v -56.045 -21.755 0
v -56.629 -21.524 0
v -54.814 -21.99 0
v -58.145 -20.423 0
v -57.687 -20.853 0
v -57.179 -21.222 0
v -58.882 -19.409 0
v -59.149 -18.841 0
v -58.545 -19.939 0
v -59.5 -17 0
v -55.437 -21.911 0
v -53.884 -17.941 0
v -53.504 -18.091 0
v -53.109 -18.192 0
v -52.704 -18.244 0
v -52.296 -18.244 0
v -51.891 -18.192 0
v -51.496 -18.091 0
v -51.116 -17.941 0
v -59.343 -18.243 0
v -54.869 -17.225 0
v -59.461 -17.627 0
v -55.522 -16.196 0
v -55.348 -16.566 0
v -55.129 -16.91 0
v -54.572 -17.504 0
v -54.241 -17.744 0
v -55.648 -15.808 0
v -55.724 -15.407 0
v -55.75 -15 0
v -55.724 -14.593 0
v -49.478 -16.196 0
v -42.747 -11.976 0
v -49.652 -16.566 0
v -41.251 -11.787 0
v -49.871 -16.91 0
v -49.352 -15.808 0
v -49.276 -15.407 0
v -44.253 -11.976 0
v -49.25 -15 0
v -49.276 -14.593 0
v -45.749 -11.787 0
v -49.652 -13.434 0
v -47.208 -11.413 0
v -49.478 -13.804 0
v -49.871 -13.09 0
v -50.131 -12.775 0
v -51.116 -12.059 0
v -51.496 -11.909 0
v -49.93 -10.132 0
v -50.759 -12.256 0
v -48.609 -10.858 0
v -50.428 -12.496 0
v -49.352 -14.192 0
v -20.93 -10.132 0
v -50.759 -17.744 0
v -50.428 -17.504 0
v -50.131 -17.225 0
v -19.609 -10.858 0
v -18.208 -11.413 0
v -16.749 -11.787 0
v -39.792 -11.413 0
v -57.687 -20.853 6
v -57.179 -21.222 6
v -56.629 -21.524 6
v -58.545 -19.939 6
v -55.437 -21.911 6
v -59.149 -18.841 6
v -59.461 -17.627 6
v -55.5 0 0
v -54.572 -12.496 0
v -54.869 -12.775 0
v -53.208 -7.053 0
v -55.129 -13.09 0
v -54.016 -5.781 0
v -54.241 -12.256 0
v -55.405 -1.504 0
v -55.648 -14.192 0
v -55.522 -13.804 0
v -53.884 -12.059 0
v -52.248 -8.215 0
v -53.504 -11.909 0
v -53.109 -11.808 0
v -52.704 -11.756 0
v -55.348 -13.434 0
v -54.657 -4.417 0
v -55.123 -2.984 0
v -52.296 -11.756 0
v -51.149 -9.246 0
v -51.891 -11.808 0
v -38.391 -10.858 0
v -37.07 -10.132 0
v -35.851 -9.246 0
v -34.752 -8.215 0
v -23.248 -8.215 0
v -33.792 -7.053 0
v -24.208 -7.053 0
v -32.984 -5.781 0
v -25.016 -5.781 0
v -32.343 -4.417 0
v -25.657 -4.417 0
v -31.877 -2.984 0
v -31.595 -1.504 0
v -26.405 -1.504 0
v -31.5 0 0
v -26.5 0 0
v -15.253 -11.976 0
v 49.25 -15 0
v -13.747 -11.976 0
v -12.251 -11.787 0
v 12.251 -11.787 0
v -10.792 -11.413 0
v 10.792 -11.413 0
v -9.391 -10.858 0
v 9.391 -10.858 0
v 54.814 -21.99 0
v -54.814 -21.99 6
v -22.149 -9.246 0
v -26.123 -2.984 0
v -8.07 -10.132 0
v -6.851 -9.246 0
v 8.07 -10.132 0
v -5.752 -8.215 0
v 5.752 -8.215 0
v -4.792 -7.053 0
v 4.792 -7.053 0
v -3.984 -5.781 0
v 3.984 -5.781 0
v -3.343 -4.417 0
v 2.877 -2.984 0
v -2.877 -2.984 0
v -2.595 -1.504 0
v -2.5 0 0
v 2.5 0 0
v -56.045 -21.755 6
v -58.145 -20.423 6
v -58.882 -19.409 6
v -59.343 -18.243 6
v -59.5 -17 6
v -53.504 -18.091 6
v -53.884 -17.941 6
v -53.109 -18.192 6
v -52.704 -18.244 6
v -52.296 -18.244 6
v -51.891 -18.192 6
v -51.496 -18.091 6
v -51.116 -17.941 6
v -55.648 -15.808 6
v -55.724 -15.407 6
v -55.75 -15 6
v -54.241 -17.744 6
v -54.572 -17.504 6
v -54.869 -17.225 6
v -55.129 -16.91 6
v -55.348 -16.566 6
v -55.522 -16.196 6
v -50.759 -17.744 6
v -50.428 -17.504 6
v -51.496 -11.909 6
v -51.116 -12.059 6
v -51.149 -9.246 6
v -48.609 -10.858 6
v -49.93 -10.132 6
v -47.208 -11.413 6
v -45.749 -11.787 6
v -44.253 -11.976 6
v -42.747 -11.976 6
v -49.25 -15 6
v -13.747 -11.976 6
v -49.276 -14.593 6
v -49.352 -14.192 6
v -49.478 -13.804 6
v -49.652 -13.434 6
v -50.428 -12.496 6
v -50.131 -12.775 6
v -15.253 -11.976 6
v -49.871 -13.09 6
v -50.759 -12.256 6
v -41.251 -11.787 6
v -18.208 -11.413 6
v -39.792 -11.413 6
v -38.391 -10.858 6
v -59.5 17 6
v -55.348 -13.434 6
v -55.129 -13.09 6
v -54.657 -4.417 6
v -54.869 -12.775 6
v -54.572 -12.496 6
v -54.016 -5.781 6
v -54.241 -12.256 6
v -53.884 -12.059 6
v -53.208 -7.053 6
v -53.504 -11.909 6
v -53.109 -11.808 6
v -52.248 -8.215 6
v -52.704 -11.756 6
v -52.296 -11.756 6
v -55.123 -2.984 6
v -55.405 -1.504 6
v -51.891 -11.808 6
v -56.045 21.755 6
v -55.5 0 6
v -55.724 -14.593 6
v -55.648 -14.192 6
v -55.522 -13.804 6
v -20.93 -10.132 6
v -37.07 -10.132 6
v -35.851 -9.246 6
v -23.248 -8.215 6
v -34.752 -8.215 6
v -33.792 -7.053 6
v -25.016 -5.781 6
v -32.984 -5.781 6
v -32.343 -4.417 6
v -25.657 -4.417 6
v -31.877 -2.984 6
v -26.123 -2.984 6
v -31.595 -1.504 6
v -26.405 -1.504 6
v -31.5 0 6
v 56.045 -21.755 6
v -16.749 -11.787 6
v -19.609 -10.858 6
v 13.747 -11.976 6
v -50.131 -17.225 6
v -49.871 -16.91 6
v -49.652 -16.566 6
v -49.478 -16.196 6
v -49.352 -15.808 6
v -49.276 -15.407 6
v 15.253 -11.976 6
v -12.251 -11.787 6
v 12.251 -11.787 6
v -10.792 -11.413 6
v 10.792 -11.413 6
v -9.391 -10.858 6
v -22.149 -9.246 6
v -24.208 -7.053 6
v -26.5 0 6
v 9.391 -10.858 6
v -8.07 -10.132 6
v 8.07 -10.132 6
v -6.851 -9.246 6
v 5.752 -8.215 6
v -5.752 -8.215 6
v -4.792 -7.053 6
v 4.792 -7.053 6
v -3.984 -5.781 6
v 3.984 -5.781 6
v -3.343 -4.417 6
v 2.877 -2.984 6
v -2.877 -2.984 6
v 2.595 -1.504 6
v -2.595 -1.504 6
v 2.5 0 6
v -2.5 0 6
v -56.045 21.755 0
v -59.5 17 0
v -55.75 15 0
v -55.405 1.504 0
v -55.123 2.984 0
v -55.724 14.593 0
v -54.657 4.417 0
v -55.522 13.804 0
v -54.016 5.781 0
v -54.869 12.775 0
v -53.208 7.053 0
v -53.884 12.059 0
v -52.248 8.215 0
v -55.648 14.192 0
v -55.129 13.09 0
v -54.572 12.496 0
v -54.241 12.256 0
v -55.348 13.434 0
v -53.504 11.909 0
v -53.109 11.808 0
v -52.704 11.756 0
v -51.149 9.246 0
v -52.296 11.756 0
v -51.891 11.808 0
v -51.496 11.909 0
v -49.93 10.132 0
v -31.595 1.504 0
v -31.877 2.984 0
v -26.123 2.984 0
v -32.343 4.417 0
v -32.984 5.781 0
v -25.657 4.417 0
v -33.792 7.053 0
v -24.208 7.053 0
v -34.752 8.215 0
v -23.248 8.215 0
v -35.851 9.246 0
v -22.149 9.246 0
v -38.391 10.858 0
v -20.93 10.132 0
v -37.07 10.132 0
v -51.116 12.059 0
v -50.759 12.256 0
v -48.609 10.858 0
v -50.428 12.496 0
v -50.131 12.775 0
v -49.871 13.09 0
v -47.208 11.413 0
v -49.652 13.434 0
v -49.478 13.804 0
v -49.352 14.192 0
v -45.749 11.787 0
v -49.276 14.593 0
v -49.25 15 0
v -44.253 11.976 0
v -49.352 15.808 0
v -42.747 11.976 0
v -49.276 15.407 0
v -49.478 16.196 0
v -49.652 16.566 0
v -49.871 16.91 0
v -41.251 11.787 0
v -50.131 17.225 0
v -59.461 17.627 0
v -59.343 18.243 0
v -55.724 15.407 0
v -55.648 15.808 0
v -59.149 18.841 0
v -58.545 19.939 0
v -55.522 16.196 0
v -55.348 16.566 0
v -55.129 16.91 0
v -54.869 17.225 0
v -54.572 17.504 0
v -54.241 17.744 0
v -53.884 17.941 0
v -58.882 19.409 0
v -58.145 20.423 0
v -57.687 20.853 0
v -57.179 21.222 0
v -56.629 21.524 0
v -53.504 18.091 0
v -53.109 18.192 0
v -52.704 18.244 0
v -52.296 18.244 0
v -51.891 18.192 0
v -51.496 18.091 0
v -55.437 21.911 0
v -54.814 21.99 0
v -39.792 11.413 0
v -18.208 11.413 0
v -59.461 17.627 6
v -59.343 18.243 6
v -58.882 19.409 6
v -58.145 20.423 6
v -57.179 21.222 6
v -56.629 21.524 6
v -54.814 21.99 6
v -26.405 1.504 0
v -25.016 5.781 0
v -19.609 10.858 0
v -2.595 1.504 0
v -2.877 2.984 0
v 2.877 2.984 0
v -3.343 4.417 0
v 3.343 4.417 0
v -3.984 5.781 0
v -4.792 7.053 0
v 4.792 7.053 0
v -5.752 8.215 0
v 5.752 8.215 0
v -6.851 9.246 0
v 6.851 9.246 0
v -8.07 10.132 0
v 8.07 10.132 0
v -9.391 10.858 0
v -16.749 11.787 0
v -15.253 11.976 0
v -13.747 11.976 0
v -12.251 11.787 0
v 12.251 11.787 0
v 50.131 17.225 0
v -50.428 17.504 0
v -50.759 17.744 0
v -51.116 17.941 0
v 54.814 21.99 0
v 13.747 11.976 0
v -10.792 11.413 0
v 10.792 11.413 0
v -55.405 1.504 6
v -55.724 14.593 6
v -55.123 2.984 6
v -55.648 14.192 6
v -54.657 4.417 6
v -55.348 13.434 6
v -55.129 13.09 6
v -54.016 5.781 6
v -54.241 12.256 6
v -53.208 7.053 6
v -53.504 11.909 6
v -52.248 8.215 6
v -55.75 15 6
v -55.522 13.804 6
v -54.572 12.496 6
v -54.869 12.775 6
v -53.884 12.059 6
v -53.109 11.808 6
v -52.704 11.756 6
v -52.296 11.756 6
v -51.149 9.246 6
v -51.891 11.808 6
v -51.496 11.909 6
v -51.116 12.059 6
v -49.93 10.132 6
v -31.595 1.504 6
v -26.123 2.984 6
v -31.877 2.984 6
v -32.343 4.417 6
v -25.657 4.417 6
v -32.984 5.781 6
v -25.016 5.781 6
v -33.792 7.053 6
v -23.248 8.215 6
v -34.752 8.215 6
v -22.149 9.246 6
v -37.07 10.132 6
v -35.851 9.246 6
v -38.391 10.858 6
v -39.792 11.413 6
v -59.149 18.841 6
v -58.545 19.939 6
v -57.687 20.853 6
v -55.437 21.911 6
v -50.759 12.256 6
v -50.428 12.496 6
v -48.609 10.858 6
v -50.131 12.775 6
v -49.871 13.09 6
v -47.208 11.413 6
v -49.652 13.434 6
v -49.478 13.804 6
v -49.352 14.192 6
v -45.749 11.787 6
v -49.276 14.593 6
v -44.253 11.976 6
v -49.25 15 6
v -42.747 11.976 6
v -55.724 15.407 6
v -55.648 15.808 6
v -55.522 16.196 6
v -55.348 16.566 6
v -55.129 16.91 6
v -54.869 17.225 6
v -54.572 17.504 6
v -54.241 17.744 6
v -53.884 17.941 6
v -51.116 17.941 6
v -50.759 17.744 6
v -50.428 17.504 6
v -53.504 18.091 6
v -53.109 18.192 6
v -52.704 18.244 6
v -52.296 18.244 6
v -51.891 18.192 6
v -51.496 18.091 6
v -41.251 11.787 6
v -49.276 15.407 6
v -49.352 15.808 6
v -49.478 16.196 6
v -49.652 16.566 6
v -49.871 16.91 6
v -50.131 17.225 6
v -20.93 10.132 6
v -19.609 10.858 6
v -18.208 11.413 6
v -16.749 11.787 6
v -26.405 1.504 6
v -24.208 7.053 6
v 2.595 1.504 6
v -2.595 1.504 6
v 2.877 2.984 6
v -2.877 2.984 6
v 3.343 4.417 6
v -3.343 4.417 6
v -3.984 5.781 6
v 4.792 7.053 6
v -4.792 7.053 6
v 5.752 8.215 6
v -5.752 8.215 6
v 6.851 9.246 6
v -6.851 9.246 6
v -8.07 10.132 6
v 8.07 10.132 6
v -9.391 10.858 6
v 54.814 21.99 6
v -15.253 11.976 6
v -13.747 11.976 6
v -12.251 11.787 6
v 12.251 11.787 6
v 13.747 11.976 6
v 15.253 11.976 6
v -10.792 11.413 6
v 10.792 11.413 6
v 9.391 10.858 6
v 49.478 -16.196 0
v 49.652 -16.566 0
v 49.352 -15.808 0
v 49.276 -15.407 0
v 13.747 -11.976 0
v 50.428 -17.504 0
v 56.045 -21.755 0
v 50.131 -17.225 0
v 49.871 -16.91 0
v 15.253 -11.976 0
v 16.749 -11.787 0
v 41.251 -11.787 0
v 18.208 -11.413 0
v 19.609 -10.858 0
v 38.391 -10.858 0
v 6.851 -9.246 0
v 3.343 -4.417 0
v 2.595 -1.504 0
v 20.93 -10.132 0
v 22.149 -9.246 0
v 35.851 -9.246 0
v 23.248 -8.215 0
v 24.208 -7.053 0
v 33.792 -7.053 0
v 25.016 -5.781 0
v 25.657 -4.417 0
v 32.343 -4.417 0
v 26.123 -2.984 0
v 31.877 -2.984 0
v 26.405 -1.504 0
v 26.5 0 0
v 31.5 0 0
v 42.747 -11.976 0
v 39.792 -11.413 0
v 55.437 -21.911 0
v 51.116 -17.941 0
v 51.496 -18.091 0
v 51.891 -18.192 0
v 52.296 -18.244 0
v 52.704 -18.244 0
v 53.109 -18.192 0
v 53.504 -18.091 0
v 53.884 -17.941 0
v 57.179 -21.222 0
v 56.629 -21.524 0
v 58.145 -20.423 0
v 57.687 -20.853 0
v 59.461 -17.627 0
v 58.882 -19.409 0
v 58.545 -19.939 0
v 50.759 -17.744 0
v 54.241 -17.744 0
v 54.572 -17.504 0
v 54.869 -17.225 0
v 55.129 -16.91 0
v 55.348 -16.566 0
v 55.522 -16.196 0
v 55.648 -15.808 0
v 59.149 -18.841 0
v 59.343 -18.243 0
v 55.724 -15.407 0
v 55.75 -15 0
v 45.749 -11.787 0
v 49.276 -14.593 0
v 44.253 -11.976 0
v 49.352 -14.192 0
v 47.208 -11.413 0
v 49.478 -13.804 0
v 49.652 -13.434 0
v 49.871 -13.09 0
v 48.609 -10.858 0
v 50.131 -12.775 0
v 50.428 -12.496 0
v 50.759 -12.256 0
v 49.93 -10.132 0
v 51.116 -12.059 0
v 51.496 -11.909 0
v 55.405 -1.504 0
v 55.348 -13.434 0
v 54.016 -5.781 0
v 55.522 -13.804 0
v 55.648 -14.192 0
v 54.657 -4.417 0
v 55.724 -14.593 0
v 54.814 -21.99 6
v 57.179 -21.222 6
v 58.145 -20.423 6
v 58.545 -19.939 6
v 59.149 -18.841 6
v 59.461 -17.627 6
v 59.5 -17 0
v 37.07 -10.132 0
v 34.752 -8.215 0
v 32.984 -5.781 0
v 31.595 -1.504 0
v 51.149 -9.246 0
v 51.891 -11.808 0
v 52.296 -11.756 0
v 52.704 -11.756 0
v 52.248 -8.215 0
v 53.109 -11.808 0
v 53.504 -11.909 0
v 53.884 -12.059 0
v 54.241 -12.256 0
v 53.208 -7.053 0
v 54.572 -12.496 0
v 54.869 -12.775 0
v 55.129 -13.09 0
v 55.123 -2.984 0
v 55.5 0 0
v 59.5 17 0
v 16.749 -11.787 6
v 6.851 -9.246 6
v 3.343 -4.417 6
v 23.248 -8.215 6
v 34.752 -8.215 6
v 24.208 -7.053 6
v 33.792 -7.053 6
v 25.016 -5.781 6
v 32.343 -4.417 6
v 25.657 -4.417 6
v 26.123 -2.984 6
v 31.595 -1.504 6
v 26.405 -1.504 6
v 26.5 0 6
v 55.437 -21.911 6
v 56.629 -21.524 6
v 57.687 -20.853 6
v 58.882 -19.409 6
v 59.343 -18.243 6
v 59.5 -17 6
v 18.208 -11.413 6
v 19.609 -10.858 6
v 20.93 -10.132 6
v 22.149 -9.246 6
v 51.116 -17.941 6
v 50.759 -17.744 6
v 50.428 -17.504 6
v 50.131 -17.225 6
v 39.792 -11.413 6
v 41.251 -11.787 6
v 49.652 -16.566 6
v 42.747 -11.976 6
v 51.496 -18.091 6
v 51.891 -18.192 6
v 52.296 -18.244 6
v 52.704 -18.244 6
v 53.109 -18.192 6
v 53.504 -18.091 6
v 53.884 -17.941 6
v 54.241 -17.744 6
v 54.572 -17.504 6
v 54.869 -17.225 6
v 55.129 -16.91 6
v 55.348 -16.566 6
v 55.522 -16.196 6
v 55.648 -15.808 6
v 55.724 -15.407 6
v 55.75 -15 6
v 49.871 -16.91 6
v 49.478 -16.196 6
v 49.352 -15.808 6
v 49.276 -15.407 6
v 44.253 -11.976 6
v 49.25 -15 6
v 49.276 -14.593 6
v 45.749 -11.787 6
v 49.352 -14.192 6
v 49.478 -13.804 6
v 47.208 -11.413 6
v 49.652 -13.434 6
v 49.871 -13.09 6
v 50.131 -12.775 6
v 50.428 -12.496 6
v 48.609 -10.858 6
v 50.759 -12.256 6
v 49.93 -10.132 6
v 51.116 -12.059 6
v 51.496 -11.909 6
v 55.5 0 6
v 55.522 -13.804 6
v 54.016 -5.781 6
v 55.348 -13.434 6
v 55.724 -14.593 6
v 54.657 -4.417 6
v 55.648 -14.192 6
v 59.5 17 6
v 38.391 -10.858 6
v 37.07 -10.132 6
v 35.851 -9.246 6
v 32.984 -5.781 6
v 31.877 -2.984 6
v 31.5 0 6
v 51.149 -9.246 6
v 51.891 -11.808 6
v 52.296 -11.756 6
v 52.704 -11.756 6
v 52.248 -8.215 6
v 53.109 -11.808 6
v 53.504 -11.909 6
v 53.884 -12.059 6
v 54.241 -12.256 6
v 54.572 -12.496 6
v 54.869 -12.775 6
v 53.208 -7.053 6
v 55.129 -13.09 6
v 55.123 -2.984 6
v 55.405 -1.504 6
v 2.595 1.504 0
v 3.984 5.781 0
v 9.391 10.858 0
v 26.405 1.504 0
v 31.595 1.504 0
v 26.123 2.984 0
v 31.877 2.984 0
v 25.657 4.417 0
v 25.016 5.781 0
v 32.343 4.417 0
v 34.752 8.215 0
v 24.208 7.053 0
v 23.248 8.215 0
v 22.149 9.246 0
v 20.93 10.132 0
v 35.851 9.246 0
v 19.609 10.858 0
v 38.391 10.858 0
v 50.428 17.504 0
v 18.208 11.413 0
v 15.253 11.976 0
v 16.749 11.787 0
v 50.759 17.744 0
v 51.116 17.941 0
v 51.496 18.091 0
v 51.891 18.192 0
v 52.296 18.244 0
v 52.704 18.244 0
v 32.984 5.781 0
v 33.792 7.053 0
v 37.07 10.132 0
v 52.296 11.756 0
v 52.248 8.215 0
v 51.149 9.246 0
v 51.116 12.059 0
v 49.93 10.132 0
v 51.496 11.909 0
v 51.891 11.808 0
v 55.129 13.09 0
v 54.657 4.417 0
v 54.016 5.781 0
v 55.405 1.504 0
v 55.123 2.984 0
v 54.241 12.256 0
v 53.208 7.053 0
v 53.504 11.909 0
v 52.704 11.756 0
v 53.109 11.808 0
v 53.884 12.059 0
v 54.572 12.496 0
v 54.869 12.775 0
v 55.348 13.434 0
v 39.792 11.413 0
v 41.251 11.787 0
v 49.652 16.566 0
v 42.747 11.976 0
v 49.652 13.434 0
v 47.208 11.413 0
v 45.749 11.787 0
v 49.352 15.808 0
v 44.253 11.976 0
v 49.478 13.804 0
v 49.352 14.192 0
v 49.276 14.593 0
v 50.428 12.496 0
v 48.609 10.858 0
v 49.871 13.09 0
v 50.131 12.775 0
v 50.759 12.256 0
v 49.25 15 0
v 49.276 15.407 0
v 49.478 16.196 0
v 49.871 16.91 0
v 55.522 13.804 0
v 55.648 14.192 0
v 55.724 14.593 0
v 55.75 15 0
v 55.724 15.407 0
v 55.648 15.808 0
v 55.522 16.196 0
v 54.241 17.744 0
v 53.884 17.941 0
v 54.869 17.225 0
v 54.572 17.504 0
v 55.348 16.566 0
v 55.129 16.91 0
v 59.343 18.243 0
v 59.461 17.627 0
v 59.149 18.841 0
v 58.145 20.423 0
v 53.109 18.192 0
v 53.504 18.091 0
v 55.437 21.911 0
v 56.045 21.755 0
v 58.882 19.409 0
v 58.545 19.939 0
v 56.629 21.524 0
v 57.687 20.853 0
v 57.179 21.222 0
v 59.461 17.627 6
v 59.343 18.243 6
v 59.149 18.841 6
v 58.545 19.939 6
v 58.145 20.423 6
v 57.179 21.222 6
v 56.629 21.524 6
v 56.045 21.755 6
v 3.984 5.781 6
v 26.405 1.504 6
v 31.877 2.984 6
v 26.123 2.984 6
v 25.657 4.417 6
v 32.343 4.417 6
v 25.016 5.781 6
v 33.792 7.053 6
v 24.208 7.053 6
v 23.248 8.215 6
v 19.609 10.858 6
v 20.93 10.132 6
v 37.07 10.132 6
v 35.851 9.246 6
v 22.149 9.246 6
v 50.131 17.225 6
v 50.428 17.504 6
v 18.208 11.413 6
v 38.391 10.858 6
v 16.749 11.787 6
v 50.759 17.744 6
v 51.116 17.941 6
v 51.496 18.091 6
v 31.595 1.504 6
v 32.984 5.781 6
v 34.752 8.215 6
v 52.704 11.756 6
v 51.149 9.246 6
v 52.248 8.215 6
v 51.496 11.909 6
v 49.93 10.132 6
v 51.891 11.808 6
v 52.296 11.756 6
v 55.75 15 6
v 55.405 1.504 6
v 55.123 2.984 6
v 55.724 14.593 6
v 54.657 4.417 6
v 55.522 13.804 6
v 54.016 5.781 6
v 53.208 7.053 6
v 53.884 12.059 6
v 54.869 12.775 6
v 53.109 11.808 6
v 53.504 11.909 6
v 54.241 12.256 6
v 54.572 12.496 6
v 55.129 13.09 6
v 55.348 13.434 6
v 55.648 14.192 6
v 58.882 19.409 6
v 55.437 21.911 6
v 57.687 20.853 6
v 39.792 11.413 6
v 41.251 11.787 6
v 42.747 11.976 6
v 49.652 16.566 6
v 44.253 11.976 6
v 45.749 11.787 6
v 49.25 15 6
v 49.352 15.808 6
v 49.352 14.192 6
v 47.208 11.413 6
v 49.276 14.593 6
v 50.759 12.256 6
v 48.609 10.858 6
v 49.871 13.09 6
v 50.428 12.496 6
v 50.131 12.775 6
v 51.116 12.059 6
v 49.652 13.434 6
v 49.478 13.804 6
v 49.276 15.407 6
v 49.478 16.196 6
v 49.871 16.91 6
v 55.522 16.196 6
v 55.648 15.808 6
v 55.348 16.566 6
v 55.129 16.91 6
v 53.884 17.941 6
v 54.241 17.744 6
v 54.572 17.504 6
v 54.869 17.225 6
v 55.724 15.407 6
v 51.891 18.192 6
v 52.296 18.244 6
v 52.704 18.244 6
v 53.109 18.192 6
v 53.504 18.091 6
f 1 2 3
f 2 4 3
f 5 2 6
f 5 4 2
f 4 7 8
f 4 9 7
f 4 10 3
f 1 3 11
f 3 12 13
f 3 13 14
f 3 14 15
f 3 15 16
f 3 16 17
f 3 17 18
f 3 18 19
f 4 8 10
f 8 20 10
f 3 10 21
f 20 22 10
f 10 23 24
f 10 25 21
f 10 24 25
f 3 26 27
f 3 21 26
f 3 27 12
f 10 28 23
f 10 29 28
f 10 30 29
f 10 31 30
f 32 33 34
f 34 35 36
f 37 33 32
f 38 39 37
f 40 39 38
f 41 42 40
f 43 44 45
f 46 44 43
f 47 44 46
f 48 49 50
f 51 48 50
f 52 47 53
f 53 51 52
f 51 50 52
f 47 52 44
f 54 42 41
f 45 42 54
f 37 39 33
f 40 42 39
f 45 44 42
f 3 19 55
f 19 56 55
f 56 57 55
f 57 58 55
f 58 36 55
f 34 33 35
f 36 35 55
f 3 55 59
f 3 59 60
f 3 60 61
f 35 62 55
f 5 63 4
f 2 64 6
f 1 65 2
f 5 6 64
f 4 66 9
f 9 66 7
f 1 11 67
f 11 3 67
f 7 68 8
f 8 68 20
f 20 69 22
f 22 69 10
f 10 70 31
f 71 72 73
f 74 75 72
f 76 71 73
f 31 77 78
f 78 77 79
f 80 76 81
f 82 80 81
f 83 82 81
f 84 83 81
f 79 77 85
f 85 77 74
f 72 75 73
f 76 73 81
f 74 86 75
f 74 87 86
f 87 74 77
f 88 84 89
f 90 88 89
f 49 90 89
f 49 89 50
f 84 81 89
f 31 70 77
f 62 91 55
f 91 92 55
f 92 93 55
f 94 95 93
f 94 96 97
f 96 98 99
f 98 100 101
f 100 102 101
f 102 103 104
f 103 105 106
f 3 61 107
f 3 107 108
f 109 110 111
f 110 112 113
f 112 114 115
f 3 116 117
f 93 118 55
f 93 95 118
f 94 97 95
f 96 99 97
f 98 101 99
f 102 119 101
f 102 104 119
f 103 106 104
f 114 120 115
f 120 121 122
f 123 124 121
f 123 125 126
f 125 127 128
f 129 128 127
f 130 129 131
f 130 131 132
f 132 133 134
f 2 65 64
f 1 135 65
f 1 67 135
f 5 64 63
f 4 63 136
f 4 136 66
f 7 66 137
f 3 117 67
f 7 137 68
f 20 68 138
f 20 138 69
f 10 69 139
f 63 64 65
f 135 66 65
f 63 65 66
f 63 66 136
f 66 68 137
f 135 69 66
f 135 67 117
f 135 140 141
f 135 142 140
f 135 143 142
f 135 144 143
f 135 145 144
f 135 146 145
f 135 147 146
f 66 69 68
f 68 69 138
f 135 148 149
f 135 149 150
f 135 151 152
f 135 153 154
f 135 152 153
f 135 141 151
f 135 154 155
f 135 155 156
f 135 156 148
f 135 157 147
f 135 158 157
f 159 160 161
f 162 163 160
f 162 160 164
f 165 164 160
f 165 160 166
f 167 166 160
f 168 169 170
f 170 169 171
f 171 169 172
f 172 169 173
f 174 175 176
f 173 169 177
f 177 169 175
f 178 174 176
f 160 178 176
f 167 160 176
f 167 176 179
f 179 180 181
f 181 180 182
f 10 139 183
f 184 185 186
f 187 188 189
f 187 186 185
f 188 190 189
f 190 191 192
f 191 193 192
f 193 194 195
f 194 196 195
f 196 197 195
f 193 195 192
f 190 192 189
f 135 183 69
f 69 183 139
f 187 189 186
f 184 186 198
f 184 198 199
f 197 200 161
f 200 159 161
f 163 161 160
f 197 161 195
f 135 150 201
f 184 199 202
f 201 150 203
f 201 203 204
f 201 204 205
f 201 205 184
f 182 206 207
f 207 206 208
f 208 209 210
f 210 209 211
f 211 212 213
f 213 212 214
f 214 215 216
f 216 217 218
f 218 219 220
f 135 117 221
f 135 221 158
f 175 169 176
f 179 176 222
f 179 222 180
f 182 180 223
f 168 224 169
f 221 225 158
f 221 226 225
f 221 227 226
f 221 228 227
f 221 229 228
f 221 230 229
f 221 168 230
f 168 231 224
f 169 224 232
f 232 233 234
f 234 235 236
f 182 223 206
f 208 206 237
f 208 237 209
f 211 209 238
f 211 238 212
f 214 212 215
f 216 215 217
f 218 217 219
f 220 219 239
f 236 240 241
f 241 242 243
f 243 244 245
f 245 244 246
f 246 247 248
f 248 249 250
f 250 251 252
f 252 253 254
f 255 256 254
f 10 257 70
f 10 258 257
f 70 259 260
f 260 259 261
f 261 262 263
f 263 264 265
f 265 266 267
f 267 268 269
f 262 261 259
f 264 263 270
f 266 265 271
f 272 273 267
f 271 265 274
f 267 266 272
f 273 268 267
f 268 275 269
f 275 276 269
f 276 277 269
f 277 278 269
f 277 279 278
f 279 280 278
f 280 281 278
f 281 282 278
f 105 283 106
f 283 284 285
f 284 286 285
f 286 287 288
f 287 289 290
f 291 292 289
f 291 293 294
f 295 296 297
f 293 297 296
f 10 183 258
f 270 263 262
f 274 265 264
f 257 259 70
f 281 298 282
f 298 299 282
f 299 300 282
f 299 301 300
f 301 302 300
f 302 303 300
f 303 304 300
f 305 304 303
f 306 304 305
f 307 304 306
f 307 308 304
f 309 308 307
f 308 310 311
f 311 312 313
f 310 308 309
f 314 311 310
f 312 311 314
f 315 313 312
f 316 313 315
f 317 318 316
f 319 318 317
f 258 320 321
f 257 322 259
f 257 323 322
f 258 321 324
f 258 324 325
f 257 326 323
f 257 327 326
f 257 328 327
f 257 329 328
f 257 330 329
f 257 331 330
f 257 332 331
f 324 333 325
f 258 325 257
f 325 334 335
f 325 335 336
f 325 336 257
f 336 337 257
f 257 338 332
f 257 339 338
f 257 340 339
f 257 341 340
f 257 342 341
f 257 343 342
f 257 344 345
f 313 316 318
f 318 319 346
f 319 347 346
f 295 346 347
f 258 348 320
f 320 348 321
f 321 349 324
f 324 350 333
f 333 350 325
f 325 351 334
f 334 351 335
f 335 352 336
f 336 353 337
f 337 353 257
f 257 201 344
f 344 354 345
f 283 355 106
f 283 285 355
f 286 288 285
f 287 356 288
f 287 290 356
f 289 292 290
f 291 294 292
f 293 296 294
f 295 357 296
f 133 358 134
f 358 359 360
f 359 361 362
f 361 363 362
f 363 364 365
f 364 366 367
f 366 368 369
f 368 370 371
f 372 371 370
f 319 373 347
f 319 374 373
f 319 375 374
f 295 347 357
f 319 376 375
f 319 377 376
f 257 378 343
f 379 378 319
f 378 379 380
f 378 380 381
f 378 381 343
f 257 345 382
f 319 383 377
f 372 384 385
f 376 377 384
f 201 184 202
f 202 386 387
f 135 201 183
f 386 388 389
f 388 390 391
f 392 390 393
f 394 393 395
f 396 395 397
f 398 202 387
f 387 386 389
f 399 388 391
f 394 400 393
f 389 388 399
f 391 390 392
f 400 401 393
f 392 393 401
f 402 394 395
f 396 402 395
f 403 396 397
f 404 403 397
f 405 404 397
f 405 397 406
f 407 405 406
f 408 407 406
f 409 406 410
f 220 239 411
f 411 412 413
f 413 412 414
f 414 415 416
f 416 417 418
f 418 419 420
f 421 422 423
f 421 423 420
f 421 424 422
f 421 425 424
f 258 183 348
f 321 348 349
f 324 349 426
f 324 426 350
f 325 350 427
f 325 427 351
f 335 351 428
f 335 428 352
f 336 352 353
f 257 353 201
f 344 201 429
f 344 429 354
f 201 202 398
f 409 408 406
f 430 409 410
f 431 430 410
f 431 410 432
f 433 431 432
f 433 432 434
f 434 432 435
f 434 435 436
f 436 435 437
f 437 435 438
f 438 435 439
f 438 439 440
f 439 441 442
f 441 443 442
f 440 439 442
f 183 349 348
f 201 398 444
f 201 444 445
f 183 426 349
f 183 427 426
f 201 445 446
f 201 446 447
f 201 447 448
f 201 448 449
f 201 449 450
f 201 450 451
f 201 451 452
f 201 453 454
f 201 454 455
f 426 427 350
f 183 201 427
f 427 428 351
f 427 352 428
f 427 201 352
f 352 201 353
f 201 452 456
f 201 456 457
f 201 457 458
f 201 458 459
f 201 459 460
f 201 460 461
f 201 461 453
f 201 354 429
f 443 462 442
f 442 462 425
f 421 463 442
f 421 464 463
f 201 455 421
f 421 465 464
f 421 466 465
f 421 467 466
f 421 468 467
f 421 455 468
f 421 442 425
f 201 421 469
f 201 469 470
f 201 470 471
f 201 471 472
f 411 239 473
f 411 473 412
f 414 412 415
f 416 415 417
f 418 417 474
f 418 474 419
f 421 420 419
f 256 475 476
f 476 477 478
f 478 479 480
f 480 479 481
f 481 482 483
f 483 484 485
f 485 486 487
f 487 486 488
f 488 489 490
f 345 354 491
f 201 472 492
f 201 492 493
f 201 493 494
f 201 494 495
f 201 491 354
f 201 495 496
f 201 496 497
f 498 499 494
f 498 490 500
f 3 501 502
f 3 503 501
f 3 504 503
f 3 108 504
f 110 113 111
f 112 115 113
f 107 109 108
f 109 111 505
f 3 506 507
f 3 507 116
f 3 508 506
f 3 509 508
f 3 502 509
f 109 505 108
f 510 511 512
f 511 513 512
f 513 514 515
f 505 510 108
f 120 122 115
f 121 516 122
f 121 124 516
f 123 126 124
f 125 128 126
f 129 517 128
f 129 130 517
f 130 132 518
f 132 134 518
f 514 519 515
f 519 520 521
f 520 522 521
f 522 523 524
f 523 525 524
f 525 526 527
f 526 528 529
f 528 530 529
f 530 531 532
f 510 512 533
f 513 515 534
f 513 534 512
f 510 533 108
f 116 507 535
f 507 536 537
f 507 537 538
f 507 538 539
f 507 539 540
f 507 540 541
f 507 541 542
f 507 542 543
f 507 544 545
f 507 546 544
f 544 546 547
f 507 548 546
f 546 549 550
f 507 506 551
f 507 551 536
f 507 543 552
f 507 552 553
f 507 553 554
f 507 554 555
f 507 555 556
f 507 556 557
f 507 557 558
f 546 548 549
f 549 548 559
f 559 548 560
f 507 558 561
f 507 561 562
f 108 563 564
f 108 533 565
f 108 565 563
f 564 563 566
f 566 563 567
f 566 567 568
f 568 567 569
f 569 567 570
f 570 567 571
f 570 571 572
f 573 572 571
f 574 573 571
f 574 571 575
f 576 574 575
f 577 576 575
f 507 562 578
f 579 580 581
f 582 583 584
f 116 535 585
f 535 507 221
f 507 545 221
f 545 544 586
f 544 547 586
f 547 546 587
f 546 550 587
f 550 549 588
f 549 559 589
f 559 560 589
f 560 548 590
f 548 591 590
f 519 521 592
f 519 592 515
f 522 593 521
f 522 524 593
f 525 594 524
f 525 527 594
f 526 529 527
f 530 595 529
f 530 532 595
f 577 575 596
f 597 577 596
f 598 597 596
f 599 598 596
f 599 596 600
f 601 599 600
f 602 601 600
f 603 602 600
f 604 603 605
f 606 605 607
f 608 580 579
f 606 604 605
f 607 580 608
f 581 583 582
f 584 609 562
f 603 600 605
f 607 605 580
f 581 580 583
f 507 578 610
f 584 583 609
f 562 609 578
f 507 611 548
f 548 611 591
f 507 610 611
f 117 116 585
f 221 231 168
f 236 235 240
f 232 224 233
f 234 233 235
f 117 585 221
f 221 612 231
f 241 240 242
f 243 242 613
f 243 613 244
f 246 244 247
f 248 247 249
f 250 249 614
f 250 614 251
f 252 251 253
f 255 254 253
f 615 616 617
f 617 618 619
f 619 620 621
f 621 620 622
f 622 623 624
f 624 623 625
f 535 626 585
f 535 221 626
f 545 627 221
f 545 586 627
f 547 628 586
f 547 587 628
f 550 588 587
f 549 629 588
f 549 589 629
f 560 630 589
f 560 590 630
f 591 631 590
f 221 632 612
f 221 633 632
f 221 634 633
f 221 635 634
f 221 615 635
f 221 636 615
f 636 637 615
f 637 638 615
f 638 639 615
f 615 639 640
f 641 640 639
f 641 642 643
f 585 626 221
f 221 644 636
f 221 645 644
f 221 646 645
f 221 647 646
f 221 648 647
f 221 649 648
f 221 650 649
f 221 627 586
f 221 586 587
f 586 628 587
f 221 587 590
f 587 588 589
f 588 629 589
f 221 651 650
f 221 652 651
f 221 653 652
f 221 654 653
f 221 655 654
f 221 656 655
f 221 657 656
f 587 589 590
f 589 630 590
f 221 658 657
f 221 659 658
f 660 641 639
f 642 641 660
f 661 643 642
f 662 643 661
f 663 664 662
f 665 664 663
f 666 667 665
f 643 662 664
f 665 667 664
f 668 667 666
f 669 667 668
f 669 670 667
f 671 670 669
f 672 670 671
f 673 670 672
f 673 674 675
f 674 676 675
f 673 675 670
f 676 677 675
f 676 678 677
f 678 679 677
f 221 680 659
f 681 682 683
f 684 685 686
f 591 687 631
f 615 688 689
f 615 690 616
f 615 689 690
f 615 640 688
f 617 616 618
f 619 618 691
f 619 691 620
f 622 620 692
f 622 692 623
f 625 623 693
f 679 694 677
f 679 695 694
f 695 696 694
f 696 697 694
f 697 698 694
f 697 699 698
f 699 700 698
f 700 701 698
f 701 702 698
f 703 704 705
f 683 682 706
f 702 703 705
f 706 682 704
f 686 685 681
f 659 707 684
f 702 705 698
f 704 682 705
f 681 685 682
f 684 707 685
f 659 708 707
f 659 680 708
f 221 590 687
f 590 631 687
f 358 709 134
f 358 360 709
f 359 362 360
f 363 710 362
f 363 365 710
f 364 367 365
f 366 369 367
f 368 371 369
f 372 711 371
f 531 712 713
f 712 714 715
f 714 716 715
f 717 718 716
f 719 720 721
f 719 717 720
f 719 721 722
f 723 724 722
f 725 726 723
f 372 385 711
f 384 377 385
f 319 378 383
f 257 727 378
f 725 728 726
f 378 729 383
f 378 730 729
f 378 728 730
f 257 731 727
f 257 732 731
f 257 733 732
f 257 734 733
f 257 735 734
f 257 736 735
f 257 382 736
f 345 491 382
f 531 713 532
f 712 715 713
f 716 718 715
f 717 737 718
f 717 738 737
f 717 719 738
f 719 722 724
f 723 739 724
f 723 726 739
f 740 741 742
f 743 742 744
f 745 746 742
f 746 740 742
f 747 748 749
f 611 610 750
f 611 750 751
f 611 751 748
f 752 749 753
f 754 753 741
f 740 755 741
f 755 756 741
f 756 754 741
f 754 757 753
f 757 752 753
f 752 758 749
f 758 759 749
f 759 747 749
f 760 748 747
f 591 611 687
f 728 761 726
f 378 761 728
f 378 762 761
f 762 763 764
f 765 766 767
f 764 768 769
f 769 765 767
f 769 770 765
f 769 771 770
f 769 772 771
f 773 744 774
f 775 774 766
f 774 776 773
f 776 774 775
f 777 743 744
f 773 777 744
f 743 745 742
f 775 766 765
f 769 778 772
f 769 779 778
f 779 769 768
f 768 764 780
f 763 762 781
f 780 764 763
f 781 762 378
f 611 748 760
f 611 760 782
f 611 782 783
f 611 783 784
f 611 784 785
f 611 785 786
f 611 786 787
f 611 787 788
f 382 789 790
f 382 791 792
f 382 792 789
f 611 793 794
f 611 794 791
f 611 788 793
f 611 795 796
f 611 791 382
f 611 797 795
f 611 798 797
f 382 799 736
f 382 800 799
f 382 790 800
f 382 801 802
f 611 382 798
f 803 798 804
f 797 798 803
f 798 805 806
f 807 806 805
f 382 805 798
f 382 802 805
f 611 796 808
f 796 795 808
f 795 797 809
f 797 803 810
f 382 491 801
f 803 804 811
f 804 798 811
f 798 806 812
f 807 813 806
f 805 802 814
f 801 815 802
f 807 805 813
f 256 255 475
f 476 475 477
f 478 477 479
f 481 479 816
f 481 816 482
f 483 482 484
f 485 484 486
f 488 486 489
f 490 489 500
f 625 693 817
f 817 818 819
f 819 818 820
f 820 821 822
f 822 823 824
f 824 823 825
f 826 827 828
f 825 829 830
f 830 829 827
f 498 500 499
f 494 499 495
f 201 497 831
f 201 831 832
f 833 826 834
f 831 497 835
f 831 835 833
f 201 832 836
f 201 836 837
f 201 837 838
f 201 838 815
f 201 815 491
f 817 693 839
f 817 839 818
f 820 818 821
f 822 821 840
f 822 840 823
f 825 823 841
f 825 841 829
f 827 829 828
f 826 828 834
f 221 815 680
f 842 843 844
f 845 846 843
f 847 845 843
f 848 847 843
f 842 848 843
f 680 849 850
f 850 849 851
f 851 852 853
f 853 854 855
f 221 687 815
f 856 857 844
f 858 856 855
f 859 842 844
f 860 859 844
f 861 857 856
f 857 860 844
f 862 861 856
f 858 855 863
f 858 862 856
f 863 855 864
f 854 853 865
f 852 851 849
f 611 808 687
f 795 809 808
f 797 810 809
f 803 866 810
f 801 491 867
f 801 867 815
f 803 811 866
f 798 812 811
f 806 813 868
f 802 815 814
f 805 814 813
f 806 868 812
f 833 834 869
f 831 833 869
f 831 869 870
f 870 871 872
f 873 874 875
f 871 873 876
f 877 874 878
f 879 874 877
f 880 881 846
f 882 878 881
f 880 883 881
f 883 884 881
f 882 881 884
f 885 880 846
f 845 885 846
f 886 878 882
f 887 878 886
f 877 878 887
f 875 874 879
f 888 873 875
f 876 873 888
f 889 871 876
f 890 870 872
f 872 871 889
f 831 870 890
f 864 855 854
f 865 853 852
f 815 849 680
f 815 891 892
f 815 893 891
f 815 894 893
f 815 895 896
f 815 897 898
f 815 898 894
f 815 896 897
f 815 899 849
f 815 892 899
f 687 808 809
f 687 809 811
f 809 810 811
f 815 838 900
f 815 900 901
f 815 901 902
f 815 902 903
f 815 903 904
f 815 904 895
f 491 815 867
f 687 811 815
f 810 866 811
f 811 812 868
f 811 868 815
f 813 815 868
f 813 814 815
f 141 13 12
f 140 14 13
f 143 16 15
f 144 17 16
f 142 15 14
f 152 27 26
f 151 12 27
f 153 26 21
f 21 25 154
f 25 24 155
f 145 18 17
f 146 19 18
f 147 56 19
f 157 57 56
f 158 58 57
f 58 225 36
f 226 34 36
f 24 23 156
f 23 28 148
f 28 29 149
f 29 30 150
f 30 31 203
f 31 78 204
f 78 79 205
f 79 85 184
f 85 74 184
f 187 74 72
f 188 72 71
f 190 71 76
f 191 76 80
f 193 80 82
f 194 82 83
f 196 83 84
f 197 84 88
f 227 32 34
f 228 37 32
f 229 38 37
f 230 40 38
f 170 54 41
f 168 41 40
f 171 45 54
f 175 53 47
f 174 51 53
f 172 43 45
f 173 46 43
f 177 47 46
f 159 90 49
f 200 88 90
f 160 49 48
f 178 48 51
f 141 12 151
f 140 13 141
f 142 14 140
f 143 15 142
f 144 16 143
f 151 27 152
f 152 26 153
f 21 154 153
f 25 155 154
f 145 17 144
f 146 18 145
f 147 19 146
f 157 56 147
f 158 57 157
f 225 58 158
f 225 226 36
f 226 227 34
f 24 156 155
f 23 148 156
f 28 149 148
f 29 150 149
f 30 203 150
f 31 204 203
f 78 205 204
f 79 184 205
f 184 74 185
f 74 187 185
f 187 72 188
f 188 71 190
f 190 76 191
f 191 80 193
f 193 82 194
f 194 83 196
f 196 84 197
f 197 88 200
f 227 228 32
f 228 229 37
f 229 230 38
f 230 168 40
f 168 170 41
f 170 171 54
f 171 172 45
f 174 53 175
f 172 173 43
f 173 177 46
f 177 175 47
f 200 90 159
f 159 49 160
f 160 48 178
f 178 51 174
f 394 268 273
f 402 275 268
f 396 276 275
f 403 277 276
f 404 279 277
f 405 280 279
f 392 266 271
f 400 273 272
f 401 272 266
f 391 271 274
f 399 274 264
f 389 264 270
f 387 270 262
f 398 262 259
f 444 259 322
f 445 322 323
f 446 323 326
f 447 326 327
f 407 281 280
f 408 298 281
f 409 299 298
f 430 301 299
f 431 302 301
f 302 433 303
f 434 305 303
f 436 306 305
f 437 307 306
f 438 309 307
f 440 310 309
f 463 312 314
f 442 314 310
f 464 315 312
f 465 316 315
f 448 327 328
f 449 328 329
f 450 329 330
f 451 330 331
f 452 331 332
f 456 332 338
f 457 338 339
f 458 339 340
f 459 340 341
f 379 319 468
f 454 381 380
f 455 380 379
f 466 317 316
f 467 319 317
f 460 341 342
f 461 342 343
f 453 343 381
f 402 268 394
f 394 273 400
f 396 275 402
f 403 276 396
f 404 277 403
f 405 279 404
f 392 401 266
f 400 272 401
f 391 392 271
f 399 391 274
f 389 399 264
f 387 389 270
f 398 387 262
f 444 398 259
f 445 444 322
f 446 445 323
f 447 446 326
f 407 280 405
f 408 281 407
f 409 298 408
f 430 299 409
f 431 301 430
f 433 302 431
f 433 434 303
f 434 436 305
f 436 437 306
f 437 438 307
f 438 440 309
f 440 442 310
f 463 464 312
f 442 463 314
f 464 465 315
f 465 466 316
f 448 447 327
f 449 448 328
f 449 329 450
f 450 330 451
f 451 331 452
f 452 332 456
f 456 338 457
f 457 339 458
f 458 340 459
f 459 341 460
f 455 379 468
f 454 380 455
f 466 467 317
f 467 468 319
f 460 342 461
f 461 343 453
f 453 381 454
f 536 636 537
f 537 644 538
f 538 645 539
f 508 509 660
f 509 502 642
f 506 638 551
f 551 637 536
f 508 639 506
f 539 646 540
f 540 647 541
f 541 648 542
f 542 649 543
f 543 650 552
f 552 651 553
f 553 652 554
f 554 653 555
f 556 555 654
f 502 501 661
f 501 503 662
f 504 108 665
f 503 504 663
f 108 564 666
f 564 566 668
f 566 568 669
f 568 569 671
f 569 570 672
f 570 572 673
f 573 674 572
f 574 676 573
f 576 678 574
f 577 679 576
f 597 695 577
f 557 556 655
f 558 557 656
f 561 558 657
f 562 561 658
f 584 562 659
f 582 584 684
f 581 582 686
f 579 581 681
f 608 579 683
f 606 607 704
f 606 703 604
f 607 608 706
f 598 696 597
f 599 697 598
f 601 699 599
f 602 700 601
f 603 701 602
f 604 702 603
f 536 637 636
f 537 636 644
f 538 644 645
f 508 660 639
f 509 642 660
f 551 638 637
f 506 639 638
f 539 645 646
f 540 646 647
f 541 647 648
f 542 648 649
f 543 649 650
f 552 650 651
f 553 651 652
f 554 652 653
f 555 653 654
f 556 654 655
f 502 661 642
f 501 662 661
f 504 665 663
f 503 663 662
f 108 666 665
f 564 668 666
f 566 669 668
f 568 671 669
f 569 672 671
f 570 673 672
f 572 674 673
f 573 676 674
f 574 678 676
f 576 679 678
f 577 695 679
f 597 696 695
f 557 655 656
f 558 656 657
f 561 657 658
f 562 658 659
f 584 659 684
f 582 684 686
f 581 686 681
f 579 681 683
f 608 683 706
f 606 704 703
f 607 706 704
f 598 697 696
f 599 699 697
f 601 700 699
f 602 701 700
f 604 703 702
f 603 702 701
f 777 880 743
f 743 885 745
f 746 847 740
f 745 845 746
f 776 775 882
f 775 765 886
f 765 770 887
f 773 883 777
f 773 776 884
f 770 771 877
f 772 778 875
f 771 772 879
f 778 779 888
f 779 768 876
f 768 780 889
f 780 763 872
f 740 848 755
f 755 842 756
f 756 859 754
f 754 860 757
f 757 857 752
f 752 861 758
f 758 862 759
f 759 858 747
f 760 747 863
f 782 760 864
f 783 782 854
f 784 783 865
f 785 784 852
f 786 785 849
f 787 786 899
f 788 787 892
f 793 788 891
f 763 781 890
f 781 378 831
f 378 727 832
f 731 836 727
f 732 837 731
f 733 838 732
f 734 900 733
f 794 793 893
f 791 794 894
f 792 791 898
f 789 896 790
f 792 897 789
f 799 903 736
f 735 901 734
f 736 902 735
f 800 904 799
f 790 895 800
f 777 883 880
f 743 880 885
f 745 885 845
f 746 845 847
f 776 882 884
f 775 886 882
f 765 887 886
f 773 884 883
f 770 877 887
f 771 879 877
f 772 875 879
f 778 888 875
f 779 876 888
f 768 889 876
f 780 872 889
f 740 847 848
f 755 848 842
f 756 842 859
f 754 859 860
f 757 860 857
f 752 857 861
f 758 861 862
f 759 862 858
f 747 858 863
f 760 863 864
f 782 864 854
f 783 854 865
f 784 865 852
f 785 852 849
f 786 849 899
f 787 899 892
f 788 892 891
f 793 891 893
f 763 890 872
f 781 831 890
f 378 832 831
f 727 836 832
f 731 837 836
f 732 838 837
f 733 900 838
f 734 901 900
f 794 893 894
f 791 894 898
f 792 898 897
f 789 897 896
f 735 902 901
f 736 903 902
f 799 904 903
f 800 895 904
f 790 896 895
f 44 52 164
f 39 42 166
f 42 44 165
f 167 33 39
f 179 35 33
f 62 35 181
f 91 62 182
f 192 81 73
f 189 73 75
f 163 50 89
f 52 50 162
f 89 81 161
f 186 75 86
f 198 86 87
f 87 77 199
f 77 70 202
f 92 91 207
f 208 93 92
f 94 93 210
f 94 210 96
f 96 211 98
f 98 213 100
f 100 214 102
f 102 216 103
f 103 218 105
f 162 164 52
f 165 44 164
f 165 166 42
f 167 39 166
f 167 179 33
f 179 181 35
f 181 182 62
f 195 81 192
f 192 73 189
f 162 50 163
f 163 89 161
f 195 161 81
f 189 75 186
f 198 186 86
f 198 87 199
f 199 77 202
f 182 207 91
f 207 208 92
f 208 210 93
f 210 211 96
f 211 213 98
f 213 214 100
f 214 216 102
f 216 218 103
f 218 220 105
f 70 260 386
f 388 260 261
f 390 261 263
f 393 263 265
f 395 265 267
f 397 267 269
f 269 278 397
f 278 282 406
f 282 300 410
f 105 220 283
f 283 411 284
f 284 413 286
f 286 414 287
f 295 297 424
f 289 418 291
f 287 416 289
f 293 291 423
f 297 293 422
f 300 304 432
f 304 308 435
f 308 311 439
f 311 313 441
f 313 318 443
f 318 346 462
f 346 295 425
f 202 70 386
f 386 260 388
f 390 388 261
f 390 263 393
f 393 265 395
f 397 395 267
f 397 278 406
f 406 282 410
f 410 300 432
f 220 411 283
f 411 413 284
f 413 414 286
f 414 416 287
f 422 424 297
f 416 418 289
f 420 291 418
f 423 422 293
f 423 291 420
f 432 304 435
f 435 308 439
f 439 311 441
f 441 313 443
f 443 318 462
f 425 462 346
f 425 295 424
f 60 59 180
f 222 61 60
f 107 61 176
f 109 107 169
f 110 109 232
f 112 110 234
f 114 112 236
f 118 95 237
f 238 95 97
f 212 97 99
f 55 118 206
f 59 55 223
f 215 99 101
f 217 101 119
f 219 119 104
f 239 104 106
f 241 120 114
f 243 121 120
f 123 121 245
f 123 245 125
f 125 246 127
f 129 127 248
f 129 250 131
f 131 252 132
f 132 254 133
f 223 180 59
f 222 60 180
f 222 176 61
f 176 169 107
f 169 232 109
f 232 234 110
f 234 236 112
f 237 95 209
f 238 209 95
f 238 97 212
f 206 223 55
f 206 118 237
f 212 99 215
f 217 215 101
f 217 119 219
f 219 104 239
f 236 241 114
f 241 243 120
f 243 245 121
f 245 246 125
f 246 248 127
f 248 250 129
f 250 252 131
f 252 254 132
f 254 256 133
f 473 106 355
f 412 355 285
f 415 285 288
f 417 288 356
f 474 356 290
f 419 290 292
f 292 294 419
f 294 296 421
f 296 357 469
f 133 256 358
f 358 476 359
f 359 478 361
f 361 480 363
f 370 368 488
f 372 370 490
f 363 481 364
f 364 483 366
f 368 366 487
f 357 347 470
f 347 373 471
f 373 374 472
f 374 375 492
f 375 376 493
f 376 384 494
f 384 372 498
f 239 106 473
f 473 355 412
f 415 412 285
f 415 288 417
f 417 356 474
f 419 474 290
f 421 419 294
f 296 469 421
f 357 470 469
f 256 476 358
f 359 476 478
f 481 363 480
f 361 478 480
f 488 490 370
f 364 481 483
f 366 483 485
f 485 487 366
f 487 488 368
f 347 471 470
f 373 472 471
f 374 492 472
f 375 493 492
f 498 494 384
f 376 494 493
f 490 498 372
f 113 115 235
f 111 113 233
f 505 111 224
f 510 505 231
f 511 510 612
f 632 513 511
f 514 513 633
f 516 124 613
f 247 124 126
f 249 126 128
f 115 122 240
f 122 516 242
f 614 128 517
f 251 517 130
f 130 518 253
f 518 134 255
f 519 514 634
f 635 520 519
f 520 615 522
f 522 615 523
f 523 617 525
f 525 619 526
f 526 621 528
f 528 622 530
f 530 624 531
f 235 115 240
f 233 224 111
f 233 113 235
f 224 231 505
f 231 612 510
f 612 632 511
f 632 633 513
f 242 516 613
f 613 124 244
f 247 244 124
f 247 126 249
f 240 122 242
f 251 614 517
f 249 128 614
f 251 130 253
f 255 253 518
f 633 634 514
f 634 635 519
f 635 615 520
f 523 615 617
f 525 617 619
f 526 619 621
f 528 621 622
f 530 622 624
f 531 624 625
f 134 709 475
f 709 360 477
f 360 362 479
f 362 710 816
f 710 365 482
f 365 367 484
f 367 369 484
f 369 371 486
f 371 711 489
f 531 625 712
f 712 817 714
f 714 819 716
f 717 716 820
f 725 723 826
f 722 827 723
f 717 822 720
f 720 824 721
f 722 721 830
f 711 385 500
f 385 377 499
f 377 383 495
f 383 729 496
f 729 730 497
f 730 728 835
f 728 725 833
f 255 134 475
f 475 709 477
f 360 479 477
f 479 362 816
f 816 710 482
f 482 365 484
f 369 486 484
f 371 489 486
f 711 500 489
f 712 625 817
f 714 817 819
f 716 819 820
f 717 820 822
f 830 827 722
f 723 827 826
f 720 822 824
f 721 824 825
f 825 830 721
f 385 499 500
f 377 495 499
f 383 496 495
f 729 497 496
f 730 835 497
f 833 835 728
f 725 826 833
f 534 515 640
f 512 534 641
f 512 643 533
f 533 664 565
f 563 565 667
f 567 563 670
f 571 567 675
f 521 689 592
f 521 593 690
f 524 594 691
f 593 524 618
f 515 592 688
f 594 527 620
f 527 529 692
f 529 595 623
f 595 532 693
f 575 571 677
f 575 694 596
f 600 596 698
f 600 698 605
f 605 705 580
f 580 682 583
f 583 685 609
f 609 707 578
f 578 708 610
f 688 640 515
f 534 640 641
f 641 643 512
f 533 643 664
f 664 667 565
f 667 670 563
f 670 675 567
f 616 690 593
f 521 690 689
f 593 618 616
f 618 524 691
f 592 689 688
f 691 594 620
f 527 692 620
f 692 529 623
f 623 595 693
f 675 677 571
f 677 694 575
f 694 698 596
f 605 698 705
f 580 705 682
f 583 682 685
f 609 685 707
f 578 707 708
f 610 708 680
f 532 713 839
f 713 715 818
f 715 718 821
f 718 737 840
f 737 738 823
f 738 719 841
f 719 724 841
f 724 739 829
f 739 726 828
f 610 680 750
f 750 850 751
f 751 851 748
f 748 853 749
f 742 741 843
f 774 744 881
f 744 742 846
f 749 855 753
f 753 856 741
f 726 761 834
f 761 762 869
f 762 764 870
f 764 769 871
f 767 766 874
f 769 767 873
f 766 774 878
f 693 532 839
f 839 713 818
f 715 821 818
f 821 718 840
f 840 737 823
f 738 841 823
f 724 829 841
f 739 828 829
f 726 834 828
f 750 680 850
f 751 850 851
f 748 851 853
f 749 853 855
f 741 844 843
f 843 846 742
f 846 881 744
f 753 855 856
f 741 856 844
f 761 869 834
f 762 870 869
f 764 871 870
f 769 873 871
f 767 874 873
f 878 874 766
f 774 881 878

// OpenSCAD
$fn = 50;

difference() {
	union() {
		hull() {
			translate(v = [-54.5, 17.0, 0]) {
				cylinder(h = 6, r = 5);
			}
			translate(v = [54.5, 17.0, 0]) {
				cylinder(h = 6, r = 5);
			}
			translate(v = [-54.5, -17.0, 0]) {
				cylinder(h = 6, r = 5);
			}
			translate(v = [54.5, -17.0, 0]) {
				cylinder(h = 6, r = 5);
			}
		}
	}
	union() {
		translate(v = [-52.5, -15.0, -100.0]) {
			cylinder(h = 200, r = 3.25);
		}
		translate(v = [-52.5, 15.0, -100.0]) {
			cylinder(h = 200, r = 3.25);
		}
		translate(v = [52.5, -15.0, -100.0]) {
			cylinder(h = 200, r = 3.25);
		}
		translate(v = [52.5, 15.0, -100.0]) {
			cylinder(h = 200, r = 3.25);
		}
		translate(v = [-52.5, -15.0, -100.0]) {
			cylinder(h = 200, r = 1.8);
		}
		translate(v = [-52.5, 15.0, -100.0]) {
			cylinder(h = 200, r = 1.8);
		}
		translate(v = [52.5, -15.0, -100.0]) {
			cylinder(h = 200, r = 1.8);
		}
		translate(v = [52.5, 15.0, -100.0]) {
			cylinder(h = 200, r = 1.8);
		}
		translate(v = [-43.5, 0, 0.0]) {
			cylinder(h = 6, r = 12.0);
		}
		translate(v = [-14.5, 0, 0.0]) {
			cylinder(h = 6, r = 12.0);
		}
		translate(v = [14.5, 0, 0.0]) {
			cylinder(h = 6, r = 12.0);
		}
		translate(v = [43.5, 0, 0.0]) {
			cylinder(h = 6, r = 12.0);
		}
	}
}
